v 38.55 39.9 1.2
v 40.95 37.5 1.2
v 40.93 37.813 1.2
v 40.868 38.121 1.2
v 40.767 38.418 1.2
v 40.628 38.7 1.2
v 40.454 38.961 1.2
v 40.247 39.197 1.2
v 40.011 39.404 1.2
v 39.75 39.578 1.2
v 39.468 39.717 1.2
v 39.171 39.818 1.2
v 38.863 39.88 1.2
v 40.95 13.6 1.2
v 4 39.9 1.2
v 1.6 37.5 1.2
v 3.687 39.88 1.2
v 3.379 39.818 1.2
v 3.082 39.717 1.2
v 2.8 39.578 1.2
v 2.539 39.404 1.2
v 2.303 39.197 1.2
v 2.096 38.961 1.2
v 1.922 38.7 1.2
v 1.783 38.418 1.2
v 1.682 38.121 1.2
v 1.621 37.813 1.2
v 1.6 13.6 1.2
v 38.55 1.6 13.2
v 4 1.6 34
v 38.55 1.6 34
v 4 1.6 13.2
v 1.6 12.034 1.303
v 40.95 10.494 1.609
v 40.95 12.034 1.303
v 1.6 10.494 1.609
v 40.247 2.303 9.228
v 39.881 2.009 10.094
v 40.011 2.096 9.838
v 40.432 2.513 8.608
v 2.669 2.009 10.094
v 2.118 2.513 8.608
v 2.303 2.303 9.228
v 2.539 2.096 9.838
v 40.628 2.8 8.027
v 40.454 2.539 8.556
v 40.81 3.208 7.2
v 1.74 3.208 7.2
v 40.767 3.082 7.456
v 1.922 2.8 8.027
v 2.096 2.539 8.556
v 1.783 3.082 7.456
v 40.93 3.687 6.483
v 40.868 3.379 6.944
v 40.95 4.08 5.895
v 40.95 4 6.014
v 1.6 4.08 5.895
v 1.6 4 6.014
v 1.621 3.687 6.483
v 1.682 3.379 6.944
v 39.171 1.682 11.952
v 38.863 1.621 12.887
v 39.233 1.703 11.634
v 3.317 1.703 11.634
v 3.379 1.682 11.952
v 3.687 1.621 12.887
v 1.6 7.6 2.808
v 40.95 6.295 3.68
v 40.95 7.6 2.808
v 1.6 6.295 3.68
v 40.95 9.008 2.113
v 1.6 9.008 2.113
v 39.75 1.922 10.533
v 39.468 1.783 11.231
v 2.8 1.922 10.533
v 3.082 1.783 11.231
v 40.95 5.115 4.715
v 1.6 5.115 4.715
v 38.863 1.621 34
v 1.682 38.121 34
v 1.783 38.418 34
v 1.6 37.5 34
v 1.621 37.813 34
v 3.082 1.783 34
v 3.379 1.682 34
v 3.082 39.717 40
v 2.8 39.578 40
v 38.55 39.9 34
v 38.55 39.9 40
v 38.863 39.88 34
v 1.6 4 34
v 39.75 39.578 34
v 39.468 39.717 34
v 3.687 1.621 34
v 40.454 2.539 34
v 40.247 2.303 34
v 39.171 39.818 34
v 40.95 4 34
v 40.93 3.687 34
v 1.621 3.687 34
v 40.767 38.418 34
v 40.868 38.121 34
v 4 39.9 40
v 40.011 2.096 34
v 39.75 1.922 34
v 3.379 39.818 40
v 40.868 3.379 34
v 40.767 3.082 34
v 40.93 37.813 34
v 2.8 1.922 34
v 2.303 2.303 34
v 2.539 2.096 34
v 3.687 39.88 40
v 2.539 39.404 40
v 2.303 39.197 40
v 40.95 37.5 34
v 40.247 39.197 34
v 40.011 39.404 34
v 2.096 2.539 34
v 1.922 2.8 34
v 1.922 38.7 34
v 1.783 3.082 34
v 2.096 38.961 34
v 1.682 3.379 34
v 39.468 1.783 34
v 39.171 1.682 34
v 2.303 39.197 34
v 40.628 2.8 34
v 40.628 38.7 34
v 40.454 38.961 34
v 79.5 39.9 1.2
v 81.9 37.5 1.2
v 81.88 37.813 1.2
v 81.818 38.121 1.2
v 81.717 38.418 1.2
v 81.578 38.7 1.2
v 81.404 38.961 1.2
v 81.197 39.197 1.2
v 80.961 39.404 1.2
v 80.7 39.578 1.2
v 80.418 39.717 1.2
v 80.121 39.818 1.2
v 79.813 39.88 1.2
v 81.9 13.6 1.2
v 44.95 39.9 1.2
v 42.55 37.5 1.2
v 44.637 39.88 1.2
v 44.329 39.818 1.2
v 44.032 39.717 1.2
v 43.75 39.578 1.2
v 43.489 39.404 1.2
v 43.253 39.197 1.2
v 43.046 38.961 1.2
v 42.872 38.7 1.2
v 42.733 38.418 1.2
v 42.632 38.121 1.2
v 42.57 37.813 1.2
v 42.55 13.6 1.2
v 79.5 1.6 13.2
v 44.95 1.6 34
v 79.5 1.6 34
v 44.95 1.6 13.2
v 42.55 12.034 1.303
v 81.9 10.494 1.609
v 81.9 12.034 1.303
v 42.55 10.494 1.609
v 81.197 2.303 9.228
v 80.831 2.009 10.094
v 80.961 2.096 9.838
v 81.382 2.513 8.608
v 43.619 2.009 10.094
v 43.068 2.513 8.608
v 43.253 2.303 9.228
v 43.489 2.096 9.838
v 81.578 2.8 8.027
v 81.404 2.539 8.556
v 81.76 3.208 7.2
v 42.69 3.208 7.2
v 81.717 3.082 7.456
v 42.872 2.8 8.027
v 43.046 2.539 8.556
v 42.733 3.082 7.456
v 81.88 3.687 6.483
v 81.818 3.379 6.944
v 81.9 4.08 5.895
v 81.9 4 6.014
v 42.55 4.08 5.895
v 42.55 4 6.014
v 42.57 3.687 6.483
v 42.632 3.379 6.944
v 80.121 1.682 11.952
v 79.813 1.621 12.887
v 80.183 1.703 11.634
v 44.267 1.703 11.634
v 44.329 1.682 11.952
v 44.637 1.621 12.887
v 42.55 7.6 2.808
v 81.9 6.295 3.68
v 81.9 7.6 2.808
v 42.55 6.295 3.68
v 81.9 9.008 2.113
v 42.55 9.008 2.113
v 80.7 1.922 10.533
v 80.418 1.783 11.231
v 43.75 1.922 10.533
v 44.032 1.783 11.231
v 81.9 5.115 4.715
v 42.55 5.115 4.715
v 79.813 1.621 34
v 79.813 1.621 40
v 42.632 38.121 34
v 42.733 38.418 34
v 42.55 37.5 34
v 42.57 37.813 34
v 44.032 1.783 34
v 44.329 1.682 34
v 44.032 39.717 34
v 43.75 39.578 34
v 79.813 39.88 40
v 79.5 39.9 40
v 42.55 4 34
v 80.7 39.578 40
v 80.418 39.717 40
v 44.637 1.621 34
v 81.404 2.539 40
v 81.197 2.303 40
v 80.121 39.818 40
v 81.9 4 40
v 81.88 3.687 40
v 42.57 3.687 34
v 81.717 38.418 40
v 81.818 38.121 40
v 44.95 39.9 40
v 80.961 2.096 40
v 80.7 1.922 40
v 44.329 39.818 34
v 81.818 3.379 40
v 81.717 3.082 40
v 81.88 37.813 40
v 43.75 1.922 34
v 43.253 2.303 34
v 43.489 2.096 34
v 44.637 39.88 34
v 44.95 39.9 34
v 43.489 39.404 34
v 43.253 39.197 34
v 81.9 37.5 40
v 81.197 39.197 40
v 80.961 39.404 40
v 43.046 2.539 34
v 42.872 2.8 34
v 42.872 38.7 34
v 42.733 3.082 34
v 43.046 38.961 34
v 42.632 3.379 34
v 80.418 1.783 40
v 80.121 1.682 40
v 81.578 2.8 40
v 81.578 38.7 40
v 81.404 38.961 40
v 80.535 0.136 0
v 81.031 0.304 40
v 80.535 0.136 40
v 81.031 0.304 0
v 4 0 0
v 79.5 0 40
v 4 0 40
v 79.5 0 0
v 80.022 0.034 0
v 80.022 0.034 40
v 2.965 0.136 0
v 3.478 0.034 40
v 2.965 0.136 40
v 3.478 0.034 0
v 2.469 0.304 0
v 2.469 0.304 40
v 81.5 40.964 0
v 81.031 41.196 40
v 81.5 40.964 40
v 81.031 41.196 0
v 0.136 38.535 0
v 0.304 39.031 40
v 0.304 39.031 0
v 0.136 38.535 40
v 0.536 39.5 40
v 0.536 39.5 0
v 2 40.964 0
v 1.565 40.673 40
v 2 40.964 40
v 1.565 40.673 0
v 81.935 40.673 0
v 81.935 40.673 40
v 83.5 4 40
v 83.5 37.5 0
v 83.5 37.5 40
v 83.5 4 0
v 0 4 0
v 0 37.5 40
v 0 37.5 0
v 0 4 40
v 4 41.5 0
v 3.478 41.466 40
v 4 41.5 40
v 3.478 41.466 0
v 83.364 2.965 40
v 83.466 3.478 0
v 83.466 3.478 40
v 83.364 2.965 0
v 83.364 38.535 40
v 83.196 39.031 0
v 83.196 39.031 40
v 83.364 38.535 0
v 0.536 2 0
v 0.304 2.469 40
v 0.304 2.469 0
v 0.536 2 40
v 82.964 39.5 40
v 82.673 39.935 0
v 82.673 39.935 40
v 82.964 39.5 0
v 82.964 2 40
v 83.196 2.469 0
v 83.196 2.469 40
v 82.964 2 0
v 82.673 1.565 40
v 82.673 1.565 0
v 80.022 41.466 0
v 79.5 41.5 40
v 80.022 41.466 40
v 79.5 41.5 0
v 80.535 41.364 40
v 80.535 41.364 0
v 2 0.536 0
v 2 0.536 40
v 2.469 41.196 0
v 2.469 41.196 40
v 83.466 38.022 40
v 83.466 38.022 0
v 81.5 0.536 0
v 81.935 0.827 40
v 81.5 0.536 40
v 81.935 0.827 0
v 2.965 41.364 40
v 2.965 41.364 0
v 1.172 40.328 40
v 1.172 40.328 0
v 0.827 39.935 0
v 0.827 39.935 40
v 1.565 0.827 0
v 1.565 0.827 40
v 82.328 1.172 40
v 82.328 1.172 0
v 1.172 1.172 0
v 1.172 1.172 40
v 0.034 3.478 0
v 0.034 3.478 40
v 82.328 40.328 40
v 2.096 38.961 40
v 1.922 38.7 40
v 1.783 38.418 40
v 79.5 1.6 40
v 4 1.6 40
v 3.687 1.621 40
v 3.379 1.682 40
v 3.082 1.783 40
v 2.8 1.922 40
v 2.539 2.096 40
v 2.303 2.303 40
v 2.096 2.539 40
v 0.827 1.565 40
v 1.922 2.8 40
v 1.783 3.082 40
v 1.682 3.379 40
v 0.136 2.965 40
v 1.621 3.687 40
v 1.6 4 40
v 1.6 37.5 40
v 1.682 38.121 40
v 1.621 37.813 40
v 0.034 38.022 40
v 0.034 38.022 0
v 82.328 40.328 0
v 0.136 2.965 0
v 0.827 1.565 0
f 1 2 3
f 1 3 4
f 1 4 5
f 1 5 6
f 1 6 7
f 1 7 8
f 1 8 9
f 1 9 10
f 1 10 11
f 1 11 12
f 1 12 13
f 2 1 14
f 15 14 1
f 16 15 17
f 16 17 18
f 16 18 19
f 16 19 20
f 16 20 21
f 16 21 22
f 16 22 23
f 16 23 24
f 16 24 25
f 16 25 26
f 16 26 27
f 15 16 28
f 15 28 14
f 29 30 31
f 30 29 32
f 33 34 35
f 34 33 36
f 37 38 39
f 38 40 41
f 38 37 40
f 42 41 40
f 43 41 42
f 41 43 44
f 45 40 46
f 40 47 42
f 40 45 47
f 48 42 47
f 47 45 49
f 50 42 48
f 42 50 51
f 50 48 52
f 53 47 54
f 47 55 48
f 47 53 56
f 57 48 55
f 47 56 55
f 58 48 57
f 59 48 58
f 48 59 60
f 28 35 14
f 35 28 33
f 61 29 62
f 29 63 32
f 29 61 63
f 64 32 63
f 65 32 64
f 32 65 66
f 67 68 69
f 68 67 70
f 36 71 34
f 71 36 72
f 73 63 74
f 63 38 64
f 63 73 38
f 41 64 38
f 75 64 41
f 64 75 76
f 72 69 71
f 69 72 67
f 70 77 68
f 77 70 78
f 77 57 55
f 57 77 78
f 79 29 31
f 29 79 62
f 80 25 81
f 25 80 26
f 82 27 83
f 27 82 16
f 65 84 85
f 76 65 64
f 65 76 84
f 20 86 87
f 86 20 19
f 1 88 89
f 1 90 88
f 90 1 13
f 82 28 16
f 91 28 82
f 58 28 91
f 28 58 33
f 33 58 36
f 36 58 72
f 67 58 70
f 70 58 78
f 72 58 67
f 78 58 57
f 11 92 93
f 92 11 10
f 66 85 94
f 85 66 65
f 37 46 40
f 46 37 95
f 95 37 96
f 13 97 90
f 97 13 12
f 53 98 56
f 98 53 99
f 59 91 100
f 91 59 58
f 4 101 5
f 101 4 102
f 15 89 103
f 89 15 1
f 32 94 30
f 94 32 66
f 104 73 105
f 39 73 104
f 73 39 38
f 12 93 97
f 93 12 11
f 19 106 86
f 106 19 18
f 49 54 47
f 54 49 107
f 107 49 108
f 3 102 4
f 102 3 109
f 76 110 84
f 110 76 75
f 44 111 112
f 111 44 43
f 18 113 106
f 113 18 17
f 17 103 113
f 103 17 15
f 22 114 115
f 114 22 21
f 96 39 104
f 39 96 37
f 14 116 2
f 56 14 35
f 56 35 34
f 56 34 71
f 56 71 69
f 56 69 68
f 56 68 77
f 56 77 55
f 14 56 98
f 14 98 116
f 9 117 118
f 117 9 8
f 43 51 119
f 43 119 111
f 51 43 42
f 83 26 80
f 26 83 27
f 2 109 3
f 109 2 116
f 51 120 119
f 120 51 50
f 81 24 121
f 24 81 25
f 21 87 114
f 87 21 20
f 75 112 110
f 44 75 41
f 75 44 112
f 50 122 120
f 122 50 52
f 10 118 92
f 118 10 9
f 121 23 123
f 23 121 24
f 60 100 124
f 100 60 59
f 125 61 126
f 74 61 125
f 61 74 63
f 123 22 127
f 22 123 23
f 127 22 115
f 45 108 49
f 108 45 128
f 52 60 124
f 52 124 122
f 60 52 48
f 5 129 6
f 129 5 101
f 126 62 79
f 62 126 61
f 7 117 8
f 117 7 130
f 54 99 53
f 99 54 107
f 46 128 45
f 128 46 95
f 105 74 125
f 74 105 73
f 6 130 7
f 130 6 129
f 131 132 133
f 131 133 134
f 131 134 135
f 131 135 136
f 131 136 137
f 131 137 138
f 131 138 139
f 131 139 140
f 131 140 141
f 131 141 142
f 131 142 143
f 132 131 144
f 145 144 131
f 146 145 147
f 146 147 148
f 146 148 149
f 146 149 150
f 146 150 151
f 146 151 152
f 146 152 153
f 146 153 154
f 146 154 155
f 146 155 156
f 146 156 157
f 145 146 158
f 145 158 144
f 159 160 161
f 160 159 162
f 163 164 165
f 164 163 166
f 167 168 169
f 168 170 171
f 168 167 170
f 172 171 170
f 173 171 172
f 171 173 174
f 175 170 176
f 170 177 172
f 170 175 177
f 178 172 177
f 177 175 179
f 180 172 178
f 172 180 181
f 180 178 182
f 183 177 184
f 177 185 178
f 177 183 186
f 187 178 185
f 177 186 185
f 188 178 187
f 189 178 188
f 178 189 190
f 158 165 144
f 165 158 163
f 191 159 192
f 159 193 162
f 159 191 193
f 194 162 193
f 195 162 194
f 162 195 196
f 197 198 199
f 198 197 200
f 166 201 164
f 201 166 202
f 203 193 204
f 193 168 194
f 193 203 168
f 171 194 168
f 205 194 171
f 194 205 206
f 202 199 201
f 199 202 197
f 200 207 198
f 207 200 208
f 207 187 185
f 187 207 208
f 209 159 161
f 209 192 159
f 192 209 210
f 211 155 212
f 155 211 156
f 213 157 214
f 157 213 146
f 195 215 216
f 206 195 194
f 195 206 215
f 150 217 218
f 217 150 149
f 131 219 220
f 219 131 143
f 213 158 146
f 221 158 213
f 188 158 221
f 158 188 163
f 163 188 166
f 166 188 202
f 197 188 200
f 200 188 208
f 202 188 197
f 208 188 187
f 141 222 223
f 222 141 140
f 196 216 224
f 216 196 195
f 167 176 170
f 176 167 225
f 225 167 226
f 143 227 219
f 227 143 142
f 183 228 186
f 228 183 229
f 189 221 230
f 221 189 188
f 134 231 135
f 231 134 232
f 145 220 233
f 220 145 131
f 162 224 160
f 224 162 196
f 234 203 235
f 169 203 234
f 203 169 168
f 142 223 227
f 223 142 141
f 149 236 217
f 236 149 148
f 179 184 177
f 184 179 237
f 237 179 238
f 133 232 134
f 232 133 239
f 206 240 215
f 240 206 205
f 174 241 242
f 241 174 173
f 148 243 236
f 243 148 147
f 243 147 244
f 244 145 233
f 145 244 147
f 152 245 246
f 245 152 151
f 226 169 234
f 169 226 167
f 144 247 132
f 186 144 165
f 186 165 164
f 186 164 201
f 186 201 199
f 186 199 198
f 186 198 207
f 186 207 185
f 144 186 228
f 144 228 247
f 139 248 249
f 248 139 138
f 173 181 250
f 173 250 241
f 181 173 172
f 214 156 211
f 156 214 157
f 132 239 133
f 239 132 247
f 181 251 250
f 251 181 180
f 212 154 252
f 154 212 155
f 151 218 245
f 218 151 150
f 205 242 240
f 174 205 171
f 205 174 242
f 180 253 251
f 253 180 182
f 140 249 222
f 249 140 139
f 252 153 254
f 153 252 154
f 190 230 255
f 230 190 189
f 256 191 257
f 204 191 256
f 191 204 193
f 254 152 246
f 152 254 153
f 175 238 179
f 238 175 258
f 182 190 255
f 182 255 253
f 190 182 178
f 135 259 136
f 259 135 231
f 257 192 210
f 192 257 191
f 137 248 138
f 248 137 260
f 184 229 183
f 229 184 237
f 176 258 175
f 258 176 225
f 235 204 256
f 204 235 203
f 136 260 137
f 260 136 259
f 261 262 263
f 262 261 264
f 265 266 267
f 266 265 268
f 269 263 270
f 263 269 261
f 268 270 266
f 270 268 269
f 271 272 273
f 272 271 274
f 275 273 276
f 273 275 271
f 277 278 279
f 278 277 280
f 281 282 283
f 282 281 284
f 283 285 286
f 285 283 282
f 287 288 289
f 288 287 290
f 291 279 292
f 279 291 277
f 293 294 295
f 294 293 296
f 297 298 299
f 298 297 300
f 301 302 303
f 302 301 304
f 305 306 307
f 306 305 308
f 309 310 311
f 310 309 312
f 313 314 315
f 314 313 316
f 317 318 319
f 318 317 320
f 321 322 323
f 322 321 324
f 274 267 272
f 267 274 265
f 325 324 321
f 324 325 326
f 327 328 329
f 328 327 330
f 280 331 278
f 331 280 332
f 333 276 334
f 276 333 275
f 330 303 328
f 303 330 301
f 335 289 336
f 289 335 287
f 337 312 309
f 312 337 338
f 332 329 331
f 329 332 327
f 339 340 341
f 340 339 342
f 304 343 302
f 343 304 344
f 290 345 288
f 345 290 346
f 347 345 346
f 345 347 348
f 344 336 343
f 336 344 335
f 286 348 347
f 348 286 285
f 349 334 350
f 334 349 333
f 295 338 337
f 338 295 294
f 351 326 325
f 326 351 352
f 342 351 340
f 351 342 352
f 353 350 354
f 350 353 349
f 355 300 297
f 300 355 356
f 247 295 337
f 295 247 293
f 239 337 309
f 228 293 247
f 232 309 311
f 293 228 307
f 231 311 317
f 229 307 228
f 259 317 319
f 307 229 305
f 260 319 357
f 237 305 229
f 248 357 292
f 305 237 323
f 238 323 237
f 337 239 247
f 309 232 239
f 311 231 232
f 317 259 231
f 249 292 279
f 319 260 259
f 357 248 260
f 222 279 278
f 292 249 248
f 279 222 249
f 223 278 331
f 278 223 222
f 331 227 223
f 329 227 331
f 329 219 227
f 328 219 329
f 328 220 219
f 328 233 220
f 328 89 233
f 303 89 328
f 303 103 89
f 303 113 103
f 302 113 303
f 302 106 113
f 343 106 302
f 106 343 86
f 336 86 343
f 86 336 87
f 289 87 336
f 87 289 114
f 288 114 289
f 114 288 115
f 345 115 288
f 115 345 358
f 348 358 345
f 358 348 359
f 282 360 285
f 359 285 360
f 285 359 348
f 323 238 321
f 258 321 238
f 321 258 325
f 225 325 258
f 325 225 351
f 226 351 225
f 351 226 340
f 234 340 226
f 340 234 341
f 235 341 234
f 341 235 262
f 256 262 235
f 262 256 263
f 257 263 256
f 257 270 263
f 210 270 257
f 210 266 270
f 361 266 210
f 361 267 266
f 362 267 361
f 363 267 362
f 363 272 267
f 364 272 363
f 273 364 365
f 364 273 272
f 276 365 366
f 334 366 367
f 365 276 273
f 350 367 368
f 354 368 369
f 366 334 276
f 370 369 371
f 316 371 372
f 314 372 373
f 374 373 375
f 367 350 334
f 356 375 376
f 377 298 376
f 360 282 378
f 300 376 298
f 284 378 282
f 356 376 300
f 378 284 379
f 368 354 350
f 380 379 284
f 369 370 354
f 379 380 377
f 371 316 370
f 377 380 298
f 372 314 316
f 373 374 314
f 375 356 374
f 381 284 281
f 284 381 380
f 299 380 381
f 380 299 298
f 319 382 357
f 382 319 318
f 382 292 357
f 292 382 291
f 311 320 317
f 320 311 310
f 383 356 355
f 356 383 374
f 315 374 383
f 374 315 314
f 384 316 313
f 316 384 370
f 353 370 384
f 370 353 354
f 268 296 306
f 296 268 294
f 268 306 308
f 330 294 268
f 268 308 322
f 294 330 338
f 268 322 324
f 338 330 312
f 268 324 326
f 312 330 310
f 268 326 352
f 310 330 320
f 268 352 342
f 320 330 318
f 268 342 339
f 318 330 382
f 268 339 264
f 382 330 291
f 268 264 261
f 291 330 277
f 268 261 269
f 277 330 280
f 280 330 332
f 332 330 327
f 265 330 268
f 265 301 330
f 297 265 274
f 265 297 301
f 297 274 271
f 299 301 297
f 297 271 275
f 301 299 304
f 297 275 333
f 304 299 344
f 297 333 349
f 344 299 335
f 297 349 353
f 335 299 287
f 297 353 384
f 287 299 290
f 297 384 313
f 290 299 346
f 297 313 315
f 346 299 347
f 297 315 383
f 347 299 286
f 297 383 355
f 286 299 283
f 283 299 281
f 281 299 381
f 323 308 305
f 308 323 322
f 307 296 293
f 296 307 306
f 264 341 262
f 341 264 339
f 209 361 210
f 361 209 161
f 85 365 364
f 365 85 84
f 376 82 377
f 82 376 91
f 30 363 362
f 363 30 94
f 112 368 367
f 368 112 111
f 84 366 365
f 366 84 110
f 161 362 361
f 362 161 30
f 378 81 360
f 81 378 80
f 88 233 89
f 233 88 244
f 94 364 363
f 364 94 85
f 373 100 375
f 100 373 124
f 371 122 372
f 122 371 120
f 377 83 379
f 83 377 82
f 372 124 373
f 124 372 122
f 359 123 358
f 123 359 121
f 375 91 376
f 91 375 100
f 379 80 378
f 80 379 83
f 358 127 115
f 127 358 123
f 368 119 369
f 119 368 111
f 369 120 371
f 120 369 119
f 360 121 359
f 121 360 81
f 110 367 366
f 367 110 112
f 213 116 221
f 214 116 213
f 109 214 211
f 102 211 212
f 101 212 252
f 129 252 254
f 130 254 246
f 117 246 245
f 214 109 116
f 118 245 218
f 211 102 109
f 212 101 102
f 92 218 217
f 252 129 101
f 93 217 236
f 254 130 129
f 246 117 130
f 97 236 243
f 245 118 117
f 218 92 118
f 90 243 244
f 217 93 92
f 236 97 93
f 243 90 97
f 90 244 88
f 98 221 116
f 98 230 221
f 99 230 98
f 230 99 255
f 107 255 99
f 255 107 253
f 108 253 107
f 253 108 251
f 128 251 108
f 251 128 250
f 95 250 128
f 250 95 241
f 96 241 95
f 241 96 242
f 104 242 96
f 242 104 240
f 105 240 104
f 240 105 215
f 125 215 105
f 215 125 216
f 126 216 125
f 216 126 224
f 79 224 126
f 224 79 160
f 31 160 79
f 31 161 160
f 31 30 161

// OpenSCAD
// Drawer Organizer Bin — tile a drawer with bins of any size.
// Sizes are in grid units so different bins line up with each other.
// Measure your drawer, pick a unit that divides it, and print a set.
// Print upright (as rendered), no supports.

/* [Size] */
// Grid unit (mm). 42 matches common drawer-grid systems.
unit = 42;              // [20:1:100]
// Width in units
units_x = 2;            // [1:1:8]
// Depth in units
units_y = 1;            // [1:1:8]
// Height (mm)
height = 40;            // [10:1:150]

/* [Details] */
// Compartments along X
div_x = 2;              // [1:1:10]
// Compartments along Y
div_y = 1;              // [1:1:10]
// Wall thickness (mm). Multiples of your nozzle width print best.
wall = 1.6;             // [0.8:0.4:4]
// Floor thickness (mm)
floor_t = 1.2;          // [0.6:0.2:4]
// Corner radius (mm)
corner_r = 4;           // [0:0.5:15]
// Gap left between neighbouring bins (mm)
gap = 0.5;              // [0:0.1:2]
// Divider height as a fraction of bin height
div_h_ratio = 0.85;     // [0.3:0.05:1]
// Rounded scoop inside each compartment so small parts slide out
scoop = true;

/* [Hidden] */
$fn = 48;
L = units_x * unit - gap;
W = units_y * unit - gap;
cell_x = (L - 2 * wall - (div_x - 1) * wall) / div_x;
cell_y = (W - 2 * wall - (div_y - 1) * wall) / div_y;
scoop_r = min(12, cell_y / 2, height / 3);

module rrect(l, w, r, h) {
    r2 = max(0.01, min(r, l / 2, w / 2));
    linear_extrude(h)
        offset(r = r2) offset(delta = -r2) square([l, w]);
}

difference() {
    rrect(L, W, corner_r, height);
    for (i = [0 : div_x - 1], j = [0 : div_y - 1]) {
        x = wall + i * (cell_x + wall);
        y = wall + j * (cell_y + wall);
        // compartments merge above the dividers
        translate([x, y, floor_t])
            difference() {
                rrect(cell_x, cell_y, max(0, corner_r - wall), height);
                if (scoop)
                    translate([-1, 0, 0])
                        difference() {
                            cube([cell_x + 2, scoop_r, scoop_r]);
                            translate([0, scoop_r, scoop_r]) rotate([0, 90, 0])
                                cylinder(r = scoop_r, h = cell_x + 2);
                        }
            }
    }
    // cut dividers down to their height
    translate([wall, wall, height * div_h_ratio])
        rrect(L - 2 * wall, W - 2 * wall, max(0, corner_r - wall), height);
}
